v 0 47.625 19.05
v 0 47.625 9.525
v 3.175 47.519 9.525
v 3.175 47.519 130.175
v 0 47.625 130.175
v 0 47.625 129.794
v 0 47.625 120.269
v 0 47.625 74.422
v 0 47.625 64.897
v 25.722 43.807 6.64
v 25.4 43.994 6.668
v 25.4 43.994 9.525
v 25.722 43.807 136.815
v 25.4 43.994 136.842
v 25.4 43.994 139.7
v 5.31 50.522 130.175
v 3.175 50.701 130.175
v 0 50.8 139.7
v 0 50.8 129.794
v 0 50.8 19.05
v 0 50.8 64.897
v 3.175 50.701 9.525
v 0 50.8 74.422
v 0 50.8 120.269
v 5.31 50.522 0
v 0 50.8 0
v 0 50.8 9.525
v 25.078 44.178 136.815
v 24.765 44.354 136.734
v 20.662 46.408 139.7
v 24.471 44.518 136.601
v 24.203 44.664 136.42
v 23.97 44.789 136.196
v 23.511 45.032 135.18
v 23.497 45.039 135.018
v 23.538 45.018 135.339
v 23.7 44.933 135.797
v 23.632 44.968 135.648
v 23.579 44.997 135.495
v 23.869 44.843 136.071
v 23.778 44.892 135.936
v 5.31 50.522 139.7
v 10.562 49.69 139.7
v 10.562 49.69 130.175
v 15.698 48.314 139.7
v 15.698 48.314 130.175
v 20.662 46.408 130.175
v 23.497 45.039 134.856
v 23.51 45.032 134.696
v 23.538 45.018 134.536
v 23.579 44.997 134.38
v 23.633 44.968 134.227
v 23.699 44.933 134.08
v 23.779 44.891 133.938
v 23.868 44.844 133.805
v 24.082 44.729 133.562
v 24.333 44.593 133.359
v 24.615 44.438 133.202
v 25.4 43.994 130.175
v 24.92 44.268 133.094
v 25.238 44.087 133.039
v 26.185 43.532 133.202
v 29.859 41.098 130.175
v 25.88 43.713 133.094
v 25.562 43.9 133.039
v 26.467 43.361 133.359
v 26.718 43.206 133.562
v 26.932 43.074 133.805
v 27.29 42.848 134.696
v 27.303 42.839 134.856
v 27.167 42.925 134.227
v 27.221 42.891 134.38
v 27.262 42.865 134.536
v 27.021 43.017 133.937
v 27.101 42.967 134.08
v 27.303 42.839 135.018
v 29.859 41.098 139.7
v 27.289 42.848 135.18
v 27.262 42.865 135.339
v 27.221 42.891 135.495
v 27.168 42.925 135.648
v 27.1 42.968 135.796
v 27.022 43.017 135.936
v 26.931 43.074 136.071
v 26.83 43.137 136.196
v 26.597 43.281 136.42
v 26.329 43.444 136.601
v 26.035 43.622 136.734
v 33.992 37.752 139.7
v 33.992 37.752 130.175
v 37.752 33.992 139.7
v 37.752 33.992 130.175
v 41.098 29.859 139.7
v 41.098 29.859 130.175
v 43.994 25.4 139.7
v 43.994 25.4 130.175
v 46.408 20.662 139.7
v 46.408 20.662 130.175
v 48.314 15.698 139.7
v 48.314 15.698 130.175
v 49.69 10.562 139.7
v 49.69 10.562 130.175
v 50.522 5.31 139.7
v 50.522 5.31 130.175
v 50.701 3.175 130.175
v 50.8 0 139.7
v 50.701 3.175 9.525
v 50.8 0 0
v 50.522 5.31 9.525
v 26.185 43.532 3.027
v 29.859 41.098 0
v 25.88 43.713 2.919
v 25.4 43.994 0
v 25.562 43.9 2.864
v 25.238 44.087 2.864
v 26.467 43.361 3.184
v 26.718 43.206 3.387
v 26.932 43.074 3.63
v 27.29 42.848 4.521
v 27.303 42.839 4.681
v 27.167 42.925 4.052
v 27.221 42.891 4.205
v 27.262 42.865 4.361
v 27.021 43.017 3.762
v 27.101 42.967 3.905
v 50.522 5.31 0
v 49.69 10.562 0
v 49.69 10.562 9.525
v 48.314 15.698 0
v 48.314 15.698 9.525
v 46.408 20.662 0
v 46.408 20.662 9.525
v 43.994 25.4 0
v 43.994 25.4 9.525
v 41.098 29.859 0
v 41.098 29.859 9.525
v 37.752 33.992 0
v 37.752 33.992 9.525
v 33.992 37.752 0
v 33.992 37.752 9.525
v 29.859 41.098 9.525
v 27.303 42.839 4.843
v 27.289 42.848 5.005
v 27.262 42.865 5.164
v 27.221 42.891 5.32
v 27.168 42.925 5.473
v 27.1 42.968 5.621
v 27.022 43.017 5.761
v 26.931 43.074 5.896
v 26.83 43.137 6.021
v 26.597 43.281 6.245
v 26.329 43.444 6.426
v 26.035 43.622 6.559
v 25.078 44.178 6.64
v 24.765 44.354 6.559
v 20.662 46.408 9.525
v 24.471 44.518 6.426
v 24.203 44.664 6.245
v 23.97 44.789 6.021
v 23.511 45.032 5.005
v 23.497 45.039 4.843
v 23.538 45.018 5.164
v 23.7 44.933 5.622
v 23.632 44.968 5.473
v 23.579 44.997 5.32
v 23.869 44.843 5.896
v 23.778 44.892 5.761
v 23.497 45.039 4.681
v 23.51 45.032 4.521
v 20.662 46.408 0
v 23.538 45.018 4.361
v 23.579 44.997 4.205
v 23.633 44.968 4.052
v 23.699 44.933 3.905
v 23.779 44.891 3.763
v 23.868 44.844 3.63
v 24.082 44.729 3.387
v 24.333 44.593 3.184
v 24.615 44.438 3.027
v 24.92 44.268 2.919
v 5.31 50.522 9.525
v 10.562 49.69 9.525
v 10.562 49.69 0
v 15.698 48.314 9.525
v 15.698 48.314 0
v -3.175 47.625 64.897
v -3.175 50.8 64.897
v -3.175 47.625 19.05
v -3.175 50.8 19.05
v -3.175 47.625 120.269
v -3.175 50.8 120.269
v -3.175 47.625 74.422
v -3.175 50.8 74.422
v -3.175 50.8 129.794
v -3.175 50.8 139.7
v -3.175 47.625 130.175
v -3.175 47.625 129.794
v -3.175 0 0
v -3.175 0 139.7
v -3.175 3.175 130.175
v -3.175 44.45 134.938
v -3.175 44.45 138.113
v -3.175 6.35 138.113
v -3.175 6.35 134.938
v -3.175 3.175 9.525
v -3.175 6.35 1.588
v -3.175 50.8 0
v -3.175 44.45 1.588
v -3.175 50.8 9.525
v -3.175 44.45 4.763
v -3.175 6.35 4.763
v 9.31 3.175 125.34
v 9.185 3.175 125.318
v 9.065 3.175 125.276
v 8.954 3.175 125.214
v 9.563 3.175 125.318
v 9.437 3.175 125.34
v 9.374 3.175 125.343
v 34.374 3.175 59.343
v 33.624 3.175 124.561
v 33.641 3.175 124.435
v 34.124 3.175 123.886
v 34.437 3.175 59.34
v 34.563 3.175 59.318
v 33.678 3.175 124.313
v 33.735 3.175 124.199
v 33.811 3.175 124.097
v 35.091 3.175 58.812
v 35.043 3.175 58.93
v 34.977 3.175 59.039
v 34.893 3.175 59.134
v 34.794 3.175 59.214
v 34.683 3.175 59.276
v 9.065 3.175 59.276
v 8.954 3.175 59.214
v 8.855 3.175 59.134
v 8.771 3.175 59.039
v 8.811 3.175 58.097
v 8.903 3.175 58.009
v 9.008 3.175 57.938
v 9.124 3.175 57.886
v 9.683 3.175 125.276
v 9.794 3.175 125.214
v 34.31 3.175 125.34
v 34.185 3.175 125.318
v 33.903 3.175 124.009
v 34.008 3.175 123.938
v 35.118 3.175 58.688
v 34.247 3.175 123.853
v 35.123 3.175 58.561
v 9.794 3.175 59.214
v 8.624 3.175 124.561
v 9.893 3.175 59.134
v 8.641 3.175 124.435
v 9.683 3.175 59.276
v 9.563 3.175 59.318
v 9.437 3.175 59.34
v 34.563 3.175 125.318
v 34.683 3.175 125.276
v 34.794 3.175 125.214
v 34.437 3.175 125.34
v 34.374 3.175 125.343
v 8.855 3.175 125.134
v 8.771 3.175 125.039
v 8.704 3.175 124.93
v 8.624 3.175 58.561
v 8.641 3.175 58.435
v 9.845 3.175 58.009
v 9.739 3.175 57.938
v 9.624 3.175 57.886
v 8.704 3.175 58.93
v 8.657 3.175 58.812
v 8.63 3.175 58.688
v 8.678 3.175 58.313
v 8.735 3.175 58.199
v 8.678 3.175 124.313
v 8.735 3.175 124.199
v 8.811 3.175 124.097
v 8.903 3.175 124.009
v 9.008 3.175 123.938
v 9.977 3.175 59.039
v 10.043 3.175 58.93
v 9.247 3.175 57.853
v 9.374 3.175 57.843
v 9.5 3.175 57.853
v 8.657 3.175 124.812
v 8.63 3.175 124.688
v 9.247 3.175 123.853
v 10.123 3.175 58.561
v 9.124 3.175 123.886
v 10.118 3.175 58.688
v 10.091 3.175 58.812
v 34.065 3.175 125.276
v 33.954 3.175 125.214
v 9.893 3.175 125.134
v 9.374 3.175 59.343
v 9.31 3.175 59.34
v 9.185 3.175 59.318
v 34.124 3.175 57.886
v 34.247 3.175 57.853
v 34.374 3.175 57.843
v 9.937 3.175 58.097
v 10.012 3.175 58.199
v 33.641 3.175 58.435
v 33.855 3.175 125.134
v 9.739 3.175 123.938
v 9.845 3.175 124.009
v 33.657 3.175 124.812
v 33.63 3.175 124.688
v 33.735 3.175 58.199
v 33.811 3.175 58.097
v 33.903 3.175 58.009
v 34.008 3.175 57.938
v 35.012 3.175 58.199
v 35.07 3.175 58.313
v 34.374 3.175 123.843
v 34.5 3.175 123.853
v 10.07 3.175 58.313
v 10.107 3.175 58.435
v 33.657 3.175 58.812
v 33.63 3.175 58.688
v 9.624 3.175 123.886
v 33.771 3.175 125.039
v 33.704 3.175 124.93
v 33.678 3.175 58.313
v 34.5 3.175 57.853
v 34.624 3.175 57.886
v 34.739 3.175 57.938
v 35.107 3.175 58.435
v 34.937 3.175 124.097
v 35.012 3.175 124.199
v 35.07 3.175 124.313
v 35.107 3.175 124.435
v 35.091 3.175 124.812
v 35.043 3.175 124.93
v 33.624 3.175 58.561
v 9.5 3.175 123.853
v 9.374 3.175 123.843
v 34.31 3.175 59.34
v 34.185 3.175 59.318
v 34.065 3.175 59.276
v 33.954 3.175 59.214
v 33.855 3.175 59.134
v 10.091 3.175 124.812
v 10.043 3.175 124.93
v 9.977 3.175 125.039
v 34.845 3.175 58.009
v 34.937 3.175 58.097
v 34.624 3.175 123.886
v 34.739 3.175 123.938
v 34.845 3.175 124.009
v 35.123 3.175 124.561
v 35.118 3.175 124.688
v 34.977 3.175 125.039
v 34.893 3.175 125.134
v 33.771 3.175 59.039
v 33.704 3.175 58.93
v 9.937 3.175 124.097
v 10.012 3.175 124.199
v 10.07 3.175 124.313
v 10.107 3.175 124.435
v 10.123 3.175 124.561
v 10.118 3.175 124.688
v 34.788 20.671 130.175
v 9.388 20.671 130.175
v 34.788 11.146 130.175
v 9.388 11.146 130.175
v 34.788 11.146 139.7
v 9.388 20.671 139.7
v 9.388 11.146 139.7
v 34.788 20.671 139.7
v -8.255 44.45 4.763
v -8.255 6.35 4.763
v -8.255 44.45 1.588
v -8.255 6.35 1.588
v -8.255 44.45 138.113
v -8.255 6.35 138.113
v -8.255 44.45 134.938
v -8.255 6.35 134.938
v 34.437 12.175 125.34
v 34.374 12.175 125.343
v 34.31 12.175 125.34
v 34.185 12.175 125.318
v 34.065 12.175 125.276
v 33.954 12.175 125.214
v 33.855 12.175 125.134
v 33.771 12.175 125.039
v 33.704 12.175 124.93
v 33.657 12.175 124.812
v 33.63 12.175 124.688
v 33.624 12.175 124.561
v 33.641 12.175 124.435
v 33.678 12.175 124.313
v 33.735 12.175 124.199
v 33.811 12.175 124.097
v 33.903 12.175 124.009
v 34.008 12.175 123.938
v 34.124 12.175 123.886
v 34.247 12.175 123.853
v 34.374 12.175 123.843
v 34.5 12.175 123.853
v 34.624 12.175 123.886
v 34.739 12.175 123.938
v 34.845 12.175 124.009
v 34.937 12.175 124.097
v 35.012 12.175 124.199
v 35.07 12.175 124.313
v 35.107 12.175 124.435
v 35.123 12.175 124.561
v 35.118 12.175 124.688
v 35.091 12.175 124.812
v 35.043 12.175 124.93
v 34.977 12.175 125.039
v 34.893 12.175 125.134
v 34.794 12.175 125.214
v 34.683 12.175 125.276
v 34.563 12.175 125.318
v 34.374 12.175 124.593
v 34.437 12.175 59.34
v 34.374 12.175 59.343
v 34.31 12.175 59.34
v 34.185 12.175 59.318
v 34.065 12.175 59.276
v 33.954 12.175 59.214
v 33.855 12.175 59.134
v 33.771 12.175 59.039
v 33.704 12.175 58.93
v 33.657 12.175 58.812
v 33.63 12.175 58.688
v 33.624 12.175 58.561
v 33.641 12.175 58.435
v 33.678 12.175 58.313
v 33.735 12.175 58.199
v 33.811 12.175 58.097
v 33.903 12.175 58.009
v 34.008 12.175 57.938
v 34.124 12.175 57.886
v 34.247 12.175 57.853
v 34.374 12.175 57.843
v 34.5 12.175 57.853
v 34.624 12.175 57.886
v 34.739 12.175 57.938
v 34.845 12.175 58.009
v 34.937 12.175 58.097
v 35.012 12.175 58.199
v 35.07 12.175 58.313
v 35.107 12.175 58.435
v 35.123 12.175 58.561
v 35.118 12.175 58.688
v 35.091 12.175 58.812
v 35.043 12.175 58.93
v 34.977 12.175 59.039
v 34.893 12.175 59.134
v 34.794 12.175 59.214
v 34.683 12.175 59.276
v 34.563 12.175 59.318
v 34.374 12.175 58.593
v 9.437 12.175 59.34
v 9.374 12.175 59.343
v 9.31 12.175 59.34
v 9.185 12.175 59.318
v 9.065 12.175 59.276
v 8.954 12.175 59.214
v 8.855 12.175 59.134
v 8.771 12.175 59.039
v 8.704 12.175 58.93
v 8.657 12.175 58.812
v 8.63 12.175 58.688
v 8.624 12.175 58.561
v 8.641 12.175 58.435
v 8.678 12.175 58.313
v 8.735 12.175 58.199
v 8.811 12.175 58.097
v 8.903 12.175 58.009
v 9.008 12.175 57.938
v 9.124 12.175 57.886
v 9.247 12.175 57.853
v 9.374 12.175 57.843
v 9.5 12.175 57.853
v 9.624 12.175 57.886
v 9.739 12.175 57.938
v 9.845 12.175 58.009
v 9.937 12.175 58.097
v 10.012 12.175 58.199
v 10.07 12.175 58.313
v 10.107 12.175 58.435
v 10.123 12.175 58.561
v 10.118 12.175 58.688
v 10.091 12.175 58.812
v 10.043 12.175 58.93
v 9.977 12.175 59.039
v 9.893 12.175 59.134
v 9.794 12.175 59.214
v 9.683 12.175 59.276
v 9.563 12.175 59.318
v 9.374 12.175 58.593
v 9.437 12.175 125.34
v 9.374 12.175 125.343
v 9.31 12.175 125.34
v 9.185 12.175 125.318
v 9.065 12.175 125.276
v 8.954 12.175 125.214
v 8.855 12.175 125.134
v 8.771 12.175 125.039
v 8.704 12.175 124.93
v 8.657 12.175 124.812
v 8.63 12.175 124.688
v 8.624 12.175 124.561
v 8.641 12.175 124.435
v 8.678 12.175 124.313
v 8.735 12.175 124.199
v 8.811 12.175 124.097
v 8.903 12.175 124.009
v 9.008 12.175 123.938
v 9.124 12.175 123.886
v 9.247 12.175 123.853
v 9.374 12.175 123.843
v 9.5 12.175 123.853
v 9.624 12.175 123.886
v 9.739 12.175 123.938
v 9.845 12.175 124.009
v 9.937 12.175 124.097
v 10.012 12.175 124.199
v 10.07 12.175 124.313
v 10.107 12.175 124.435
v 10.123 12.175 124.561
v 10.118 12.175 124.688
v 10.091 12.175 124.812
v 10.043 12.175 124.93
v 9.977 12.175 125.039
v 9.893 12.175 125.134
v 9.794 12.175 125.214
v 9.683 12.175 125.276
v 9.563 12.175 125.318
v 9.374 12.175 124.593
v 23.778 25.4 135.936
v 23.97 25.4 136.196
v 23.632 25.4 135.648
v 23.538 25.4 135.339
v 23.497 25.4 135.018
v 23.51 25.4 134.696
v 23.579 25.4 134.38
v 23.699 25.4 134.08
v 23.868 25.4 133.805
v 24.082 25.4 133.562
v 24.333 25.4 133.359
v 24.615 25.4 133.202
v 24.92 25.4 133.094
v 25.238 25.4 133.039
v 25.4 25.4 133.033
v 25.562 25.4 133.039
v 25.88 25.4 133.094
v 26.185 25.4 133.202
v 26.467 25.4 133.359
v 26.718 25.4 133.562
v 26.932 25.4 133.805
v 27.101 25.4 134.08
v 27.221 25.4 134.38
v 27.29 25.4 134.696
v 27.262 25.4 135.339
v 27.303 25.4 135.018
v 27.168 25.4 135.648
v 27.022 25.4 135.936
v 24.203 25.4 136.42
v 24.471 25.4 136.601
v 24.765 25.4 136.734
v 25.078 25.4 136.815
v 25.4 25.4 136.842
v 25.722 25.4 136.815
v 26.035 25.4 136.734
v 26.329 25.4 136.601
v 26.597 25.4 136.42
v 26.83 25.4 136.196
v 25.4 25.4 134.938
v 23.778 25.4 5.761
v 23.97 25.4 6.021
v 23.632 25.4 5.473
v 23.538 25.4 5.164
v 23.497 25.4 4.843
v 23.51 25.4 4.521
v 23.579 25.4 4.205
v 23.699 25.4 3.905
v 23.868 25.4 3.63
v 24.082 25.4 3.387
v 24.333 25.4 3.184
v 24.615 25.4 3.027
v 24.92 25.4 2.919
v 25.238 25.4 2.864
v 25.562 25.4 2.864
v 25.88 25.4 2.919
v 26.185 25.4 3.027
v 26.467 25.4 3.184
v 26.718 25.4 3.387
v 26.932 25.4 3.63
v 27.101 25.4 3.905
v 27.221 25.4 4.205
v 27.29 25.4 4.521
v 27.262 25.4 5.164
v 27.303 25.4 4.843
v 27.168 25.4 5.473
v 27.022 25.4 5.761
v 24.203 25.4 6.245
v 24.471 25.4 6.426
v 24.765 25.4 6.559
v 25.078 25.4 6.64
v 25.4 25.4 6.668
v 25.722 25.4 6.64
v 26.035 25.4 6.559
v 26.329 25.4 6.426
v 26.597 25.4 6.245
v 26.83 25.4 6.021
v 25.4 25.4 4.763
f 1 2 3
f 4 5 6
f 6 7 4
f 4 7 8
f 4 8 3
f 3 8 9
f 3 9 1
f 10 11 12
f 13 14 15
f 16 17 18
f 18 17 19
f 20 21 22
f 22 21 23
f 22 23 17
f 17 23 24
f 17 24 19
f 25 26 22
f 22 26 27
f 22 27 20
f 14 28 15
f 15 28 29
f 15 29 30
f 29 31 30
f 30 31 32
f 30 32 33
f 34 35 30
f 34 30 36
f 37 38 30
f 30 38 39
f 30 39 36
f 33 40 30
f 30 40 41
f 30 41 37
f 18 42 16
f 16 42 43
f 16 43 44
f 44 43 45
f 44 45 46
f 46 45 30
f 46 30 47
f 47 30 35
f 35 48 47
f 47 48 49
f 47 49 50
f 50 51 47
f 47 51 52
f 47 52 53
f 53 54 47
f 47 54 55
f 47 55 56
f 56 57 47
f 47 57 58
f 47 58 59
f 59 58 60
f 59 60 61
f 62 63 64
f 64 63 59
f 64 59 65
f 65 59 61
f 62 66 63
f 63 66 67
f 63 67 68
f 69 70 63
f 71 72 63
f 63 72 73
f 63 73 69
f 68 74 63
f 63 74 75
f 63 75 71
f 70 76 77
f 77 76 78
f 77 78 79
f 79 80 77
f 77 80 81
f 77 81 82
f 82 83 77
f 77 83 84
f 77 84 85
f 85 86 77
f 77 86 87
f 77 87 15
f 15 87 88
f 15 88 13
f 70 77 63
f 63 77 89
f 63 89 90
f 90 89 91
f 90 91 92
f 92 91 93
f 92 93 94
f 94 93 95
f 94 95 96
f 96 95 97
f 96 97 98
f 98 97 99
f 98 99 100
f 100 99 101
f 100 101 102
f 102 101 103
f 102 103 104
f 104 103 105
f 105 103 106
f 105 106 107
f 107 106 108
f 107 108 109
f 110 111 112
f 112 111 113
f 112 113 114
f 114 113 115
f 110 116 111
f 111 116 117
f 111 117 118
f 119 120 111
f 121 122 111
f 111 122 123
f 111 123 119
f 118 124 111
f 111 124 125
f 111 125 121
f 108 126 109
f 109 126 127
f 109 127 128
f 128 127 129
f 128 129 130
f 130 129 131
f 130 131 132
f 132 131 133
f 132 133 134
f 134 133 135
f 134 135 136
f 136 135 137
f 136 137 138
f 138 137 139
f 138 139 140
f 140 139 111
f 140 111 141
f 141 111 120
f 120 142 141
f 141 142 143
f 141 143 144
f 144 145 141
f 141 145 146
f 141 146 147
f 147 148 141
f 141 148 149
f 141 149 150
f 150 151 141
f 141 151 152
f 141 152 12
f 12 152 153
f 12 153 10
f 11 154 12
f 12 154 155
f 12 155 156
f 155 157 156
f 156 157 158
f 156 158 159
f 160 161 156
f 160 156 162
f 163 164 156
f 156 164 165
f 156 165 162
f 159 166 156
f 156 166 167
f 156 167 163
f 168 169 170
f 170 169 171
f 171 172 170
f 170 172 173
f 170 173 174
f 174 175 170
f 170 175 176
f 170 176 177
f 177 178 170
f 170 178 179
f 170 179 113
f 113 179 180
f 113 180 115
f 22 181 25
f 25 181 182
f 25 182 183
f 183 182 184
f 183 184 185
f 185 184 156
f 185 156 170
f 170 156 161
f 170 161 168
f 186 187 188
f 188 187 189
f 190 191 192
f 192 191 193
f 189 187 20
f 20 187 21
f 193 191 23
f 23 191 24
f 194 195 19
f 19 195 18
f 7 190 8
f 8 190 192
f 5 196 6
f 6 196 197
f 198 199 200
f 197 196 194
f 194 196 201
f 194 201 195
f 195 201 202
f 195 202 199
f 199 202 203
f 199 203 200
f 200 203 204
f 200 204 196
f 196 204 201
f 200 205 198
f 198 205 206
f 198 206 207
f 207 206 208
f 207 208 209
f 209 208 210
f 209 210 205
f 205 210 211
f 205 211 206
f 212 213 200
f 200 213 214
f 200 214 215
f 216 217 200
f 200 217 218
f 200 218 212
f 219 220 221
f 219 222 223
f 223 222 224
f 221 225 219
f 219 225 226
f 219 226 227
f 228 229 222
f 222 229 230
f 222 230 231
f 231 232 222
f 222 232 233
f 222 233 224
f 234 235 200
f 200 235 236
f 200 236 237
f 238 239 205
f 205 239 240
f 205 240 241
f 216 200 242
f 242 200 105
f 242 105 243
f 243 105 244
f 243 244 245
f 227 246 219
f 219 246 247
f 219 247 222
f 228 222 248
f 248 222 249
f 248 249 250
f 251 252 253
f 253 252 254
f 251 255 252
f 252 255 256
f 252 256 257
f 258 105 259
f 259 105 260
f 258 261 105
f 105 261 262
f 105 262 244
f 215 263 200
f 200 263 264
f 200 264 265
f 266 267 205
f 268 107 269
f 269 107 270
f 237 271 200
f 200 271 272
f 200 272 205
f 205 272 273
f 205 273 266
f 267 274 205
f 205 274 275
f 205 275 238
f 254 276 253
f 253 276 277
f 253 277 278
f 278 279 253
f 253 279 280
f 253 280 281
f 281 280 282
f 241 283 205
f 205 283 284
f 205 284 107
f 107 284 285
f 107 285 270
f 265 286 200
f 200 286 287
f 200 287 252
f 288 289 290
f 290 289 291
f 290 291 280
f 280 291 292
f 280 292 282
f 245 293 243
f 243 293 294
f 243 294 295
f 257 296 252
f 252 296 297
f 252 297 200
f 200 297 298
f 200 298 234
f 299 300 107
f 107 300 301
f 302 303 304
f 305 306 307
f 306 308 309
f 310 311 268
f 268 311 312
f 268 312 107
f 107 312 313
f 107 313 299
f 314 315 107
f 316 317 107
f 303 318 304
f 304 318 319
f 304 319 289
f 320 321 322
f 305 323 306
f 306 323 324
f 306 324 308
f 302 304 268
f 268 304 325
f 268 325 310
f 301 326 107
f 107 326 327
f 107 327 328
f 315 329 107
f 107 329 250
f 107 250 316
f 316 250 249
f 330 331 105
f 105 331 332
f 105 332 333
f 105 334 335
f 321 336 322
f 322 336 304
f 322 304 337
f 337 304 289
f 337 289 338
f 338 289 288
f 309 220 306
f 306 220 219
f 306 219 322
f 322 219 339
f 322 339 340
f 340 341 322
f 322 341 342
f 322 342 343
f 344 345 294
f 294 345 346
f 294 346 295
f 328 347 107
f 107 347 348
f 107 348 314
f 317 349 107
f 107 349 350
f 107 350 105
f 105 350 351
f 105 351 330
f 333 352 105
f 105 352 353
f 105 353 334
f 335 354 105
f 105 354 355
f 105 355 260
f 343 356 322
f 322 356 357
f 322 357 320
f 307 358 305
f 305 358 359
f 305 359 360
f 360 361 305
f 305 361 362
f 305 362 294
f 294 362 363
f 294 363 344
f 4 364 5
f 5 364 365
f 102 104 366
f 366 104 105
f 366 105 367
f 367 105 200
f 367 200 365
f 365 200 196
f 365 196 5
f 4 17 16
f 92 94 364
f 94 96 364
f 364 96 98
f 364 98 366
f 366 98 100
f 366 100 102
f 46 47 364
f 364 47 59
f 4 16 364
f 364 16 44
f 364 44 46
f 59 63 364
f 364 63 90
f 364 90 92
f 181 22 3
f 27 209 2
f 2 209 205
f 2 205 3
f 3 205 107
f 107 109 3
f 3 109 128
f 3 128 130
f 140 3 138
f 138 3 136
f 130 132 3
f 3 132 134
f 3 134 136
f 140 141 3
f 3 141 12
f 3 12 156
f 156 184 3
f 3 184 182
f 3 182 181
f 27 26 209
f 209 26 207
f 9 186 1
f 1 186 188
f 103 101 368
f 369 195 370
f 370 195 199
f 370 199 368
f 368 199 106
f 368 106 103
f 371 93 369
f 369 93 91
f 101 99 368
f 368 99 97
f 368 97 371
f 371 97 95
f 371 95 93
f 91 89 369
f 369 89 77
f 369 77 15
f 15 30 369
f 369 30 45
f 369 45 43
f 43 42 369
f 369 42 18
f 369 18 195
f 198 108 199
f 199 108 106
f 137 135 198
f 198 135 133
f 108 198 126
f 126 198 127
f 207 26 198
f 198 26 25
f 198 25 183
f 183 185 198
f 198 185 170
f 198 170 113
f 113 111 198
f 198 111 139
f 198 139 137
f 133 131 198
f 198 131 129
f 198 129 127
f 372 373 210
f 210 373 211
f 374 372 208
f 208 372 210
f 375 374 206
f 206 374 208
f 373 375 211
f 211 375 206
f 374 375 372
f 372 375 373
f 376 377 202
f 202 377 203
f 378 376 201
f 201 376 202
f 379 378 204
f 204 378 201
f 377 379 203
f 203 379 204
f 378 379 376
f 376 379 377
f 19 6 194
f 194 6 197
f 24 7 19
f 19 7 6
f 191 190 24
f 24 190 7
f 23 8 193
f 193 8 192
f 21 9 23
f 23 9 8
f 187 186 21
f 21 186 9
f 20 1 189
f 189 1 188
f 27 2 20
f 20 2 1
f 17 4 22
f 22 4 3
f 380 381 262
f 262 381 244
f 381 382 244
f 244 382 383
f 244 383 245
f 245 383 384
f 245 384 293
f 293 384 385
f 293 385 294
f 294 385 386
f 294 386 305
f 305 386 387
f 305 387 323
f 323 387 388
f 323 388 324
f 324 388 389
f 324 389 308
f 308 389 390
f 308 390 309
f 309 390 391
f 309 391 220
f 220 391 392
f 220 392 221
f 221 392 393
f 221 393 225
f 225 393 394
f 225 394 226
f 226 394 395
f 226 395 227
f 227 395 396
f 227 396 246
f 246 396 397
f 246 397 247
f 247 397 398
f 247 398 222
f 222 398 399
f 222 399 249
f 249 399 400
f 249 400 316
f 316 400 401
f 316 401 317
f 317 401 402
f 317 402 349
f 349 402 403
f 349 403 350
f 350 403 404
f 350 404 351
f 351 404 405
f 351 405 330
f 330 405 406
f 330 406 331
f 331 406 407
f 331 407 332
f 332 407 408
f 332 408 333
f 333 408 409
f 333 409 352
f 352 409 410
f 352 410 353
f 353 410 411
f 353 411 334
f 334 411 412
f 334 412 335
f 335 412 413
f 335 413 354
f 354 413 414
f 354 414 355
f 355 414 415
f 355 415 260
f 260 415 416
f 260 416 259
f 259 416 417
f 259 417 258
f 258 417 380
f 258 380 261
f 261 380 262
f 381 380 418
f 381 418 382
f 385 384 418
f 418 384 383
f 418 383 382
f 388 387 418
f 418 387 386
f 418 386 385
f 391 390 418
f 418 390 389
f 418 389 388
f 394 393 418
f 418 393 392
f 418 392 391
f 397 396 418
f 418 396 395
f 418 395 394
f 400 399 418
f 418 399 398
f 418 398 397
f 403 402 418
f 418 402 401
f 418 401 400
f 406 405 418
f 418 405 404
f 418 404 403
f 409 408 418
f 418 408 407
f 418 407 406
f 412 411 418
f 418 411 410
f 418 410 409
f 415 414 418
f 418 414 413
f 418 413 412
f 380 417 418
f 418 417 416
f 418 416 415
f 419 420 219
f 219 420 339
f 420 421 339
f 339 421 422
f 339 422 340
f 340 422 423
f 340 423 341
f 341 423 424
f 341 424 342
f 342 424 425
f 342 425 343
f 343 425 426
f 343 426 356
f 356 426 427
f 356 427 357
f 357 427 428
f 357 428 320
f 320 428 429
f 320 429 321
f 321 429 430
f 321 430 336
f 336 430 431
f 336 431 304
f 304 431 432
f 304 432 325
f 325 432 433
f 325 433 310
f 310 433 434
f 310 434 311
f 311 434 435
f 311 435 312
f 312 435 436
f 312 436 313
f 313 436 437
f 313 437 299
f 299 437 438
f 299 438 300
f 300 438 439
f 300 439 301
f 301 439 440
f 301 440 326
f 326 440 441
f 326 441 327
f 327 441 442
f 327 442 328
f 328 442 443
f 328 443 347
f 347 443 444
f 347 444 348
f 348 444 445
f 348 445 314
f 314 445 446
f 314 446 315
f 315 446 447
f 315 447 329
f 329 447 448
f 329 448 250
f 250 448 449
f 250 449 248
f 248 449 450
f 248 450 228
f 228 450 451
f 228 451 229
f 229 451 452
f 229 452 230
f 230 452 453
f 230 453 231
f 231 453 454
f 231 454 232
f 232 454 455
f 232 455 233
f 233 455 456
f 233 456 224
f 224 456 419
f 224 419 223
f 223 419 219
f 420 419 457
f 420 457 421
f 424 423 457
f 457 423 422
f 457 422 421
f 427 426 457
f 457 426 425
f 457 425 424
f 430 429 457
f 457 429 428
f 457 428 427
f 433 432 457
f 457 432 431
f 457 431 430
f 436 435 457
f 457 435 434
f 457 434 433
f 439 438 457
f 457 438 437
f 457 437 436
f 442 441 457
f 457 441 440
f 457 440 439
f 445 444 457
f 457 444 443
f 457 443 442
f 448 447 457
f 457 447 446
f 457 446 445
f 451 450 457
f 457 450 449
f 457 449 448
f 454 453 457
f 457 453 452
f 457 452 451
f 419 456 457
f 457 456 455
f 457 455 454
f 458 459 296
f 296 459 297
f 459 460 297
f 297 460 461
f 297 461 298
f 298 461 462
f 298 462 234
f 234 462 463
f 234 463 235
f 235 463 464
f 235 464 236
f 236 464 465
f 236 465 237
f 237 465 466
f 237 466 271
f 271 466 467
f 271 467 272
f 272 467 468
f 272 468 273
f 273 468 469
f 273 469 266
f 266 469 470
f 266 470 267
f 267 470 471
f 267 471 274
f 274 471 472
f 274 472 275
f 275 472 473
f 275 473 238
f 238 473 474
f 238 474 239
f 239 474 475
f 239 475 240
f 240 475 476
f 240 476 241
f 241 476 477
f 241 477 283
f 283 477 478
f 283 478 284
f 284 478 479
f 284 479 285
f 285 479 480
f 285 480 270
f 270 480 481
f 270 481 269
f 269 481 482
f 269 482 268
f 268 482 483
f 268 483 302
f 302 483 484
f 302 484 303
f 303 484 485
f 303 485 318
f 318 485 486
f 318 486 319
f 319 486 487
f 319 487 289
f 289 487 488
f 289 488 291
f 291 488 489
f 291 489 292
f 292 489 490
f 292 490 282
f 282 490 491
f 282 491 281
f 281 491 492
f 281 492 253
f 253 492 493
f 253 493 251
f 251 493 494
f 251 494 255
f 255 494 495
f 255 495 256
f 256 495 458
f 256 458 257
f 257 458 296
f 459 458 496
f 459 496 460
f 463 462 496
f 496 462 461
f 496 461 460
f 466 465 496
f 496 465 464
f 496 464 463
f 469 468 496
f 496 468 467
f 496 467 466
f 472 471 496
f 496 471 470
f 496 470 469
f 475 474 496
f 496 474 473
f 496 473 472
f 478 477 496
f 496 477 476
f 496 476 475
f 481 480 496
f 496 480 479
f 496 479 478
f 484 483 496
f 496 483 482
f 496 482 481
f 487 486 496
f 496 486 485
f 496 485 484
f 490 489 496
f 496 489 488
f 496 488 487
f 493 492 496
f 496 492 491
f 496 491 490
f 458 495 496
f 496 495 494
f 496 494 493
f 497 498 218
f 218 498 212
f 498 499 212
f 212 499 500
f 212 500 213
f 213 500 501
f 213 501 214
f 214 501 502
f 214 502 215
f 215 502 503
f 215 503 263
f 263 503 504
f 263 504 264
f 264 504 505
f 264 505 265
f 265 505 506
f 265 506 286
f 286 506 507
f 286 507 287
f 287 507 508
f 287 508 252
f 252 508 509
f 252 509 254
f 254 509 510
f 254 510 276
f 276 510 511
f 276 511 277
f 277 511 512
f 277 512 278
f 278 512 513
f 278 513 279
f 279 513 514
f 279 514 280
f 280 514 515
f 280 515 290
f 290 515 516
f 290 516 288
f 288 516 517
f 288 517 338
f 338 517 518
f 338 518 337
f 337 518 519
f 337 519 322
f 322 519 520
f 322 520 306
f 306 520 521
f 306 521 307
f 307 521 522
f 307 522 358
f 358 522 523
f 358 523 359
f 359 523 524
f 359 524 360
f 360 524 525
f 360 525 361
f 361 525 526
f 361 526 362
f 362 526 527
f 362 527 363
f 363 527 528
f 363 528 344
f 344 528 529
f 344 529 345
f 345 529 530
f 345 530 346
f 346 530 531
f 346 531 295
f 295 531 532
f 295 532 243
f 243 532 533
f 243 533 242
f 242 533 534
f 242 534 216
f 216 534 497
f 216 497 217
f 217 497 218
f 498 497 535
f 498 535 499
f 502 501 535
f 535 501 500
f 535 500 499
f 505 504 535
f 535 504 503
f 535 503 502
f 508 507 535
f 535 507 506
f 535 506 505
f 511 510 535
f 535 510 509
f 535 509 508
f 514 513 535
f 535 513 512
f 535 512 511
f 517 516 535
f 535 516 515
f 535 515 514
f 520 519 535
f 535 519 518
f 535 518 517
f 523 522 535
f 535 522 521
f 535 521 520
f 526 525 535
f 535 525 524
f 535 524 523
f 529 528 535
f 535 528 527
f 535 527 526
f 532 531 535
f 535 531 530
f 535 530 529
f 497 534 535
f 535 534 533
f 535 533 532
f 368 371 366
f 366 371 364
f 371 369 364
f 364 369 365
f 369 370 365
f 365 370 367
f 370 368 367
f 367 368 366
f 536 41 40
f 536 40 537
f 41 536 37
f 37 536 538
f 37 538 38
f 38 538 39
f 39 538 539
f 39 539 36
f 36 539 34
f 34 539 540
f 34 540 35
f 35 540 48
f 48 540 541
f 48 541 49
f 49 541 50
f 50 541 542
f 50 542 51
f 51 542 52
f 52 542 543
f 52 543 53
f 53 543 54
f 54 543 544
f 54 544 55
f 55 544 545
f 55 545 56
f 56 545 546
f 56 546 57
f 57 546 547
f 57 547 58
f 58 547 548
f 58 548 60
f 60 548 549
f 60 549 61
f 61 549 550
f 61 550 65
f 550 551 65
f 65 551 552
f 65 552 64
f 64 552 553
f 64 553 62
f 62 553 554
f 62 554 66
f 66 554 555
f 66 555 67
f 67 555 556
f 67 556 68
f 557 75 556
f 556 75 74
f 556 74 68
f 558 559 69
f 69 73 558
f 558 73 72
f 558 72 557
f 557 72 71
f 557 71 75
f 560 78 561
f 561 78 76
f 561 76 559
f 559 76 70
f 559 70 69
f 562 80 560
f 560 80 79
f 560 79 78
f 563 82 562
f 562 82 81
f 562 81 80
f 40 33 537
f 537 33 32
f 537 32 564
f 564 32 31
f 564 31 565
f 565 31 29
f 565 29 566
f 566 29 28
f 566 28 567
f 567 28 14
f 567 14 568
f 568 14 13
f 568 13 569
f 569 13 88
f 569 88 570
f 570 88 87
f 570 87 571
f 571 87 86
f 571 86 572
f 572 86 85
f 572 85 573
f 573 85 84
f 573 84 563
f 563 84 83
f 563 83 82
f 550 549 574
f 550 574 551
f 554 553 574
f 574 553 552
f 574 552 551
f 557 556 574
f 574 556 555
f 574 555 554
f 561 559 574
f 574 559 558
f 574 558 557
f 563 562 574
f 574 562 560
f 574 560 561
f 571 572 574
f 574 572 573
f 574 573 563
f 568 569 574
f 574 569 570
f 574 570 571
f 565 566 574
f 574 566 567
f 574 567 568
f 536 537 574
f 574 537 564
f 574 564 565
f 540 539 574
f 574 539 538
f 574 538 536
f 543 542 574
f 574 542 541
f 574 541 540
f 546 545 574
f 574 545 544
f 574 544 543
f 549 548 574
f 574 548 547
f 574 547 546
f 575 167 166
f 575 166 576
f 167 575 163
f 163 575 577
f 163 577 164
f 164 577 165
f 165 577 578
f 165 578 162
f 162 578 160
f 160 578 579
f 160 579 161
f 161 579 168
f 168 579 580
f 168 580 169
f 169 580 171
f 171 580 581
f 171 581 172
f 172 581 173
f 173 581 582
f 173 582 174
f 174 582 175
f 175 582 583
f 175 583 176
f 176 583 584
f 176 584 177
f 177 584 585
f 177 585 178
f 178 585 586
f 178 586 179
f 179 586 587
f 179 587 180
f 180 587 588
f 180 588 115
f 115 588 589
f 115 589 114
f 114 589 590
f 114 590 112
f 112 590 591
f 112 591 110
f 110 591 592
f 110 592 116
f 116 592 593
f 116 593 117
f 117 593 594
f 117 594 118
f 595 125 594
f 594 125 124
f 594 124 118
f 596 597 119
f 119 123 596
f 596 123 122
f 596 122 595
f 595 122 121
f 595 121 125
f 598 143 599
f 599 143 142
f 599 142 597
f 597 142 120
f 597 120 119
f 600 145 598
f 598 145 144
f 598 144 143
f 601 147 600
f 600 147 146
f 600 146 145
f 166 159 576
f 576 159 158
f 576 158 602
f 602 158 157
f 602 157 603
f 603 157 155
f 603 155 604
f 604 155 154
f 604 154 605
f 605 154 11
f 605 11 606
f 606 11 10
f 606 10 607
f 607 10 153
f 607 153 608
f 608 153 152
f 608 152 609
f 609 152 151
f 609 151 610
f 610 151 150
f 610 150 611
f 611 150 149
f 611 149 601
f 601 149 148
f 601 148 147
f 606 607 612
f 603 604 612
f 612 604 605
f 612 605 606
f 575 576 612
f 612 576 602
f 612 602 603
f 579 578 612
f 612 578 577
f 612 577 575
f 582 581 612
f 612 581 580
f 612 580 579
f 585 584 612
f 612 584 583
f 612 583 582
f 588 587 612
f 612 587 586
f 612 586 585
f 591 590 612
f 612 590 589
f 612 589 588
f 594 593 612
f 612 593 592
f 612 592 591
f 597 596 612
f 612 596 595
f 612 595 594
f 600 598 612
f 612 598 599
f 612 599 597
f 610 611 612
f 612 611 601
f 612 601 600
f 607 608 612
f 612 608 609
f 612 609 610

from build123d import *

# Parameters (mm, degrees)
BOSS_EXTRUDE1_DEPTH = 139.7
SHELL1_T            = -3.175
BOSS_EXTRUDE2_START = -9.525
BOSS_EXTRUDE2_DEPTH = 9.525
BOSS_EXTRUDE3_DEPTH = 9.525
SKETCH5_W           = 139.7
SKETCH5_H           = 50.8
SKETCH5_W_2         = 120.65
SKETCH5_H_2         = 44.45
BOSS_EXTRUDE4_DEPTH = 3.175
SKETCH6_W           = 3.175
SKETCH6_H           = 38.1
BOSS_EXTRUDE5_DEPTH = 5.08
CUT_EXTRUDE1_REACH  = 159.09
SKETCH7_W           = 3.175
SKETCH7_H           = 9.525
SKETCH9_W           = 47.625
SKETCH9_H           = 120.65
CUT_EXTRUDE2_DEPTH  = 157.092506627
SKETCH8_R           = 0.75
BOSS_EXTRUDE6_DEPTH = 9
SKETCH10_W          = 25.4
SKETCH10_H          = 9.525
CUT_EXTRUDE3_DEPTH  = 149.683592319
SKETCH11_R          = 1.905
CUT_EXTRUDE4_DEPTH  = 25.4


with BuildPart() as part:
    # Sketch1 → Boss-Extrude1 (new body)
    with BuildSketch(Plane.XY):
        with BuildLine():
            Line((0, 0), (0, 50.8))
            ThreePointArc((0, 50.8), (35.921024484, 35.921024484), (50.8, 0))
            Line((50.8, 0), (0, 0))
        make_face()
    extrude(amount=BOSS_EXTRUDE1_DEPTH)

    # Shell1
    shell1_openings = [part.faces().sort_by_distance(p)[0] for p in [
        (0, 25.4, 69.85),
    ]]
    offset(amount=SHELL1_T, openings=shell1_openings, kind=Kind.INTERSECTION)

    # Sketch3 → Boss-Extrude2 (add)
    with BuildSketch(Plane.XY.offset(139.7).offset(BOSS_EXTRUDE2_START)):
        with BuildLine():
            Line((0, 50.8), (0, 0))
            Line((0, 0), (50.8, 0))
            ThreePointArc((50.8, 0), (35.921024484, 35.921024484), (0, 50.8))
        make_face()
    extrude(amount=BOSS_EXTRUDE2_DEPTH)

    # Sketch4 → Boss-Extrude3 (add)
    with BuildSketch(Plane(origin=(0, 0, 0), x_dir=(-1, 0, 0), z_dir=(0, 0, -1))):
        with BuildLine():
            Line((-50.8, 0), (0, 0))
            Line((0, 0), (0, 50.8))
            ThreePointArc((0, 50.8), (-35.921024484, 35.921024484), (-50.8, 0))
        make_face()
    extrude(amount=-BOSS_EXTRUDE3_DEPTH)

    # Sketch5 → Boss-Extrude4 (add)
    with BuildSketch(Plane.ZY):
        with Locations((69.85, 25.4)):
            Rectangle(SKETCH5_W, SKETCH5_H)
        with Locations((69.85, 25.4)):
            Rectangle(SKETCH5_W_2, SKETCH5_H_2, mode=Mode.SUBTRACT)
    extrude(amount=BOSS_EXTRUDE4_DEPTH)

    # Sketch6 → Boss-Extrude5 (add)
    with BuildSketch(Plane.ZY.offset(3.175)):
        with Locations((3.175, 25.4)):
            Rectangle(SKETCH6_W, SKETCH6_H)
        with Locations((136.525, 25.4)):
            Rectangle(SKETCH6_W, SKETCH6_H)
    extrude(amount=BOSS_EXTRUDE5_DEPTH)

    # Cut-Extrude1: up to this face of the body (flat: up to its plane)
    cut_extrude1_end = Plane(part.part.faces().sort_by_distance((-1.5875, 47.625, 69.85))[0])
    # Sketch7 → Cut-Extrude1 (cut, up to the picked face)
    with BuildSketch(Plane(origin=(0, 50.8, 0), x_dir=(1, 0, 0), z_dir=(0, 1, 0)), mode=Mode.PRIVATE) as cut_extrude1_sk1:
        with Locations((-1.5875, -14.2875)):
            Rectangle(SKETCH7_W, SKETCH7_H)
    cut_extrude1_tool1 = split(extrude(cut_extrude1_sk1.sketch, amount=-CUT_EXTRUDE1_REACH, mode=Mode.PRIVATE), bisect_by=cut_extrude1_end, keep=Keep.BOTH, mode=Mode.PRIVATE)
    # Sketch7 → Cut-Extrude1 (cut, up to the picked face)
    with BuildSketch(Plane(origin=(0, 50.8, 0), x_dir=(1, 0, 0), z_dir=(0, 1, 0)), mode=Mode.PRIVATE) as cut_extrude1_sk2:
        with Locations((-1.5875, -69.6595)):
            Rectangle(SKETCH7_W, SKETCH7_H)
    cut_extrude1_tool2 = split(extrude(cut_extrude1_sk2.sketch, amount=-CUT_EXTRUDE1_REACH, mode=Mode.PRIVATE), bisect_by=cut_extrude1_end, keep=Keep.BOTH, mode=Mode.PRIVATE)
    # Sketch7 → Cut-Extrude1 (cut, up to the picked face)
    with BuildSketch(Plane(origin=(0, 50.8, 0), x_dir=(1, 0, 0), z_dir=(0, 1, 0)), mode=Mode.PRIVATE) as cut_extrude1_sk3:
        with Locations((-1.5875, -125.0315)):
            Rectangle(SKETCH7_W, SKETCH7_H)
    cut_extrude1_tool3 = split(extrude(cut_extrude1_sk3.sketch, amount=-CUT_EXTRUDE1_REACH, mode=Mode.PRIVATE), bisect_by=cut_extrude1_end, keep=Keep.BOTH, mode=Mode.PRIVATE)
    add(cut_extrude1_tool1.solids().sort_by(Axis((-1.5875, 50.8, 14.2875), (0, -1, 0)))[0], mode=Mode.SUBTRACT)
    add(cut_extrude1_tool2.solids().sort_by(Axis((-1.5875, 50.8, 69.6595), (0, -1, 0)))[0], mode=Mode.SUBTRACT)
    add(cut_extrude1_tool3.solids().sort_by(Axis((-1.5875, 50.8, 125.0315), (0, -1, 0)))[0], mode=Mode.SUBTRACT)

    # Sketch9 → Cut-Extrude2 (cut, through all)
    with BuildSketch(Plane(origin=(0, 3.175, 0), x_dir=(1, 0, 0), z_dir=(0, 1, 0))):
        with Locations((26.9875, -69.85)):
            Rectangle(SKETCH9_W, SKETCH9_H)
    extrude(amount=CUT_EXTRUDE2_DEPTH, mode=Mode.SUBTRACT)

    # Sketch8 → Boss-Extrude6 (add)
    with BuildSketch(Plane(origin=(0, 3.175, 0), x_dir=(1, 0, 0), z_dir=(0, 1, 0))):
        with Locations(Location((34.373685984, -124.592684636, 0), (0, 0, 270))):
            Circle(SKETCH8_R)
        with Locations(Location((34.373685984, -58.592684636, 0), (0, 0, 270))):
            Circle(SKETCH8_R)
        with Locations(Location((9.373685984, -58.592684636, 0), (0, 0, 270))):
            Circle(SKETCH8_R)
        with Locations(Location((9.373685984, -124.592684636, 0), (0, 0, 270))):
            Circle(SKETCH8_R)
    extrude(amount=BOSS_EXTRUDE6_DEPTH)

    # Sketch10 → Cut-Extrude3 (cut, through all)
    with BuildSketch(Plane(origin=(0, 0, 130.175), x_dir=(-1, 0, 0), z_dir=(0, 0, -1))):
        with Locations((-22.088336315, 15.908721759)):
            Rectangle(SKETCH10_W, SKETCH10_H)
    extrude(amount=-CUT_EXTRUDE3_DEPTH, mode=Mode.SUBTRACT)

    # Sketch11 → Cut-Extrude4 (cut)
    with BuildSketch(Plane(origin=(0, 50.8, 0), x_dir=(1, 0, 0), z_dir=(0, 1, 0))):
        with Locations(Location((25.4, -4.7625, 0), (0, 0, 270))):
            Circle(SKETCH11_R)
        with Locations(Location((25.4, -134.9375, 0), (0, 0, 270))):
            Circle(SKETCH11_R)
    extrude(amount=-CUT_EXTRUDE4_DEPTH, mode=Mode.SUBTRACT)


solid = part.part
